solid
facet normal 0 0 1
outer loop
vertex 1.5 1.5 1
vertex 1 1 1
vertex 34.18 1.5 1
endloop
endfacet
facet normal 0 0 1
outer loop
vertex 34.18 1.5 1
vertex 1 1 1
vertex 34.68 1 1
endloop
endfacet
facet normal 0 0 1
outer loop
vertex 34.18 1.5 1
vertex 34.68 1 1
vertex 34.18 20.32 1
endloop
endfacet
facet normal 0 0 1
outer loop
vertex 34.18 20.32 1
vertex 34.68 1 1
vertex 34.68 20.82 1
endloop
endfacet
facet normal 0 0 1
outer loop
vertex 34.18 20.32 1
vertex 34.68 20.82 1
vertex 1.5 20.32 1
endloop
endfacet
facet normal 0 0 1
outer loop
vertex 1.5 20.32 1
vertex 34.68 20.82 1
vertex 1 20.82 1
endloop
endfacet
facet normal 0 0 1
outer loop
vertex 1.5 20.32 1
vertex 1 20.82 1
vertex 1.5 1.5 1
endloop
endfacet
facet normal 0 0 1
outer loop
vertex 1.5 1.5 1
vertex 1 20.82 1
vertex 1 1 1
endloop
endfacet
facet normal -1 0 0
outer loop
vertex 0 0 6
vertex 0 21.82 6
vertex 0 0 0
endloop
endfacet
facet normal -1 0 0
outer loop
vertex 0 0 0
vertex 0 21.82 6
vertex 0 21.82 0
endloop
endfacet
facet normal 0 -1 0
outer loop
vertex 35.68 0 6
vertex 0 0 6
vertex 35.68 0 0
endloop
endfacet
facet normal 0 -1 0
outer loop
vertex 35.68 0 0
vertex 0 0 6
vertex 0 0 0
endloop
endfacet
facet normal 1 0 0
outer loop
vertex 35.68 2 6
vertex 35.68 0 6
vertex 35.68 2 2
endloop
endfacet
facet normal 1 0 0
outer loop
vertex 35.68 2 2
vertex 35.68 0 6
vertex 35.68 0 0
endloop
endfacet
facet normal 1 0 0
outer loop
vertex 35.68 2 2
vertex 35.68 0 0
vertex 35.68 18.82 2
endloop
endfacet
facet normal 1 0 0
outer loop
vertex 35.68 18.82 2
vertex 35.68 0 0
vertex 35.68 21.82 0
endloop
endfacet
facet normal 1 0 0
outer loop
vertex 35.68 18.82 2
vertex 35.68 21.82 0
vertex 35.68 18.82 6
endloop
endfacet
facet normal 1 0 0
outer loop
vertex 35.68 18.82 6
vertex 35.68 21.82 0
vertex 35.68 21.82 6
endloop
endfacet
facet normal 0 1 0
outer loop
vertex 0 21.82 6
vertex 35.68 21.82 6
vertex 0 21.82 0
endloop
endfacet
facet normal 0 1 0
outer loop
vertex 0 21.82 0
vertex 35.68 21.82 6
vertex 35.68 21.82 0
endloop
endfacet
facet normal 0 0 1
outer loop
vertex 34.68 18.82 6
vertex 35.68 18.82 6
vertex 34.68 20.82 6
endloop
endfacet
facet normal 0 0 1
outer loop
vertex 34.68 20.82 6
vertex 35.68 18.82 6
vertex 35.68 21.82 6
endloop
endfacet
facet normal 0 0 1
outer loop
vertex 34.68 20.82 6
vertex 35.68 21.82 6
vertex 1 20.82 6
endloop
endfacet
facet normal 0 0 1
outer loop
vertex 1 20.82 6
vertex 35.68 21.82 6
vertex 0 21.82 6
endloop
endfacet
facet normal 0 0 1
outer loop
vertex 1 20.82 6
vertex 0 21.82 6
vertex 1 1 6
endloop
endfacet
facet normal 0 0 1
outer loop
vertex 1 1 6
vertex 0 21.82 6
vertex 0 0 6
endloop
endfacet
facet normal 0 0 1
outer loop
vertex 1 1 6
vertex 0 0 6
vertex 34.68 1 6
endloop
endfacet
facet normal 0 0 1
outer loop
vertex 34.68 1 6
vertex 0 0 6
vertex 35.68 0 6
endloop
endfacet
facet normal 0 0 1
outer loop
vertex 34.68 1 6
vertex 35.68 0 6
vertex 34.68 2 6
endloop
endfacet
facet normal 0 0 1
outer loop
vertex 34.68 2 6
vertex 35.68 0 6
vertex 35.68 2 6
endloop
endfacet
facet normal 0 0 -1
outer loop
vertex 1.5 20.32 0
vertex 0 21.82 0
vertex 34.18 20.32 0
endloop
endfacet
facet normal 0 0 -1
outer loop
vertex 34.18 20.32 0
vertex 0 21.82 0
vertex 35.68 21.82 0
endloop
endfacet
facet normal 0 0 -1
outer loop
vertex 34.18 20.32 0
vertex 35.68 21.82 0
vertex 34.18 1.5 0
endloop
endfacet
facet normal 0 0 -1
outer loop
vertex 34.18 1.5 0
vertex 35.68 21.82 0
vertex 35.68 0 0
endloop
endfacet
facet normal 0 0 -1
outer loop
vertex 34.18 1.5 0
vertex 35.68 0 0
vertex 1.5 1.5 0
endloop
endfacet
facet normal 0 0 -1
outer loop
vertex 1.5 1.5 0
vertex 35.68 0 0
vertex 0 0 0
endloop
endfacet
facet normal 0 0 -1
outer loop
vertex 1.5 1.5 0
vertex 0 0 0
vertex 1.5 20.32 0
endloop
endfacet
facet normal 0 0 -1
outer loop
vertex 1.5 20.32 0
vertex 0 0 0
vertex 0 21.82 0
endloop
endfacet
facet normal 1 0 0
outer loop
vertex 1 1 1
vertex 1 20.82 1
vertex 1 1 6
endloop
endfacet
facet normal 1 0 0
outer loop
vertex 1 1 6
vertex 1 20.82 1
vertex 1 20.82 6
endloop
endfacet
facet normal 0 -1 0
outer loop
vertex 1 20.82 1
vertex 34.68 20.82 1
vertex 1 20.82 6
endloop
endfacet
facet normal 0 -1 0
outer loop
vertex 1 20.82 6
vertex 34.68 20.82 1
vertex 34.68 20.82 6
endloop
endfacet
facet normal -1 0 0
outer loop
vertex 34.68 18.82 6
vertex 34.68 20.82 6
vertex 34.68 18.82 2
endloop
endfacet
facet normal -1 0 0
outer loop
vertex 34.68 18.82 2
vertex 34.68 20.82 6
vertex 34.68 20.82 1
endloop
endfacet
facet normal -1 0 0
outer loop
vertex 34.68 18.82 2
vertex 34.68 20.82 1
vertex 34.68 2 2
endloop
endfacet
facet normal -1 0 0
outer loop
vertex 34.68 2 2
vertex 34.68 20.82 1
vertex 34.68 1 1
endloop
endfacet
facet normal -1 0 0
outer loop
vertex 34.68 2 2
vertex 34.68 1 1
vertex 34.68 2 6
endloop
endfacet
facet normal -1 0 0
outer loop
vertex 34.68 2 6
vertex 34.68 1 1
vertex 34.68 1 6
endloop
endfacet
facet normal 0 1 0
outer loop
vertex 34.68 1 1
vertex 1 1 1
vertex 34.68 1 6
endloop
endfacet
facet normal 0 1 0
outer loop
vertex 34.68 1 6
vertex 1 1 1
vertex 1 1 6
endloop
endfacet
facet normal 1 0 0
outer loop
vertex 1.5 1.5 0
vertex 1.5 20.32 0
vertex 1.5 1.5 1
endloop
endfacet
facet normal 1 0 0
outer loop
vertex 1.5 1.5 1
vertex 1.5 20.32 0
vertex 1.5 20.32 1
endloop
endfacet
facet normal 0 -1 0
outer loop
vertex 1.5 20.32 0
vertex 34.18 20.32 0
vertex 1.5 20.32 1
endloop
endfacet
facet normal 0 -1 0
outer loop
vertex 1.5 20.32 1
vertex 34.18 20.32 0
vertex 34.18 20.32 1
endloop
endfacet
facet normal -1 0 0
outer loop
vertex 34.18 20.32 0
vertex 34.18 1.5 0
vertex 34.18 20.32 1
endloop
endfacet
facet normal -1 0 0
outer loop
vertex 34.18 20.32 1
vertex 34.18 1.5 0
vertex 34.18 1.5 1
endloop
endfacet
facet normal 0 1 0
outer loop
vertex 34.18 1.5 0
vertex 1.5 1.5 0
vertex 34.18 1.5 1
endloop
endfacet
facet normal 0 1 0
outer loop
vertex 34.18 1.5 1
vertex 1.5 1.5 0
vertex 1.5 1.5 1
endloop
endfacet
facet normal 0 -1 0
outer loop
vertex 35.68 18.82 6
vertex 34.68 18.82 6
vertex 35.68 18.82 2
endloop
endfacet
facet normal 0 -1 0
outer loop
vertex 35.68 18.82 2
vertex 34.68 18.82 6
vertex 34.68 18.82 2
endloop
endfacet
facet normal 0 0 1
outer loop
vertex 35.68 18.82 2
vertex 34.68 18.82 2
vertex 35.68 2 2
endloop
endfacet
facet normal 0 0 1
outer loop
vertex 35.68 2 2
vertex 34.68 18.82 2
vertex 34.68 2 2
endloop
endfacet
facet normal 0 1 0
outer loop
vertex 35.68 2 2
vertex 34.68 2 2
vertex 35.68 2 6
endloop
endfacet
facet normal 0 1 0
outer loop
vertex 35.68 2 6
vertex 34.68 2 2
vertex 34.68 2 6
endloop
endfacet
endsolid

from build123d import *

# Parameters (mm, degrees)
ESQUISSE1_W             = 35.68
ESQUISSE1_H             = 21.82
BOSS_EXTRU_1_DEPTH      = 6
ESQUISSE2_W             = 33.68
ESQUISSE2_H             = 19.82
ENL_V_MAT_EXTRU_1_DEPTH = 5
ESQUISSE3_W             = 32.68
ESQUISSE3_H             = 18.82
ENL_V_MAT_EXTRU_2_DEPTH = 43.120954405
ESQUISSE4_W             = 4
ESQUISSE4_H             = 16.82
ENL_V_MAT_EXTRU_3_DEPTH = 5


with BuildPart() as part:
    # Esquisse1 → Boss.-Extru.1 (new body)
    with BuildSketch(Plane.XY):
        with Locations((17.84, 10.91)):
            Rectangle(ESQUISSE1_W, ESQUISSE1_H)
    extrude(amount=BOSS_EXTRU_1_DEPTH)

    # Esquisse2 → Enlèv. mat.-Extru.1 (cut)
    with BuildSketch(Plane.XY.offset(6)):
        with Locations((17.84, 10.91)):
            Rectangle(ESQUISSE2_W, ESQUISSE2_H)
    extrude(amount=-ENL_V_MAT_EXTRU_1_DEPTH, mode=Mode.SUBTRACT)

    # Esquisse3 → Enlèv. mat.-Extru.2 (cut, through all)
    with BuildSketch(Plane.XY.offset(1)):
        with Locations((17.84, 10.91)):
            Rectangle(ESQUISSE3_W, ESQUISSE3_H)
    extrude(amount=-ENL_V_MAT_EXTRU_2_DEPTH, mode=Mode.SUBTRACT)

    # Esquisse4 → Enlèv. mat.-Extru.3 (cut)
    with BuildSketch(Plane(origin=(35.68, 0, 0), x_dir=(0, 0, -1), z_dir=(1, 0, 0))):
        with Locations((-4, 10.41)):
            Rectangle(ESQUISSE4_W, ESQUISSE4_H)
    extrude(amount=-ENL_V_MAT_EXTRU_3_DEPTH, mode=Mode.SUBTRACT)


solid = part.part
